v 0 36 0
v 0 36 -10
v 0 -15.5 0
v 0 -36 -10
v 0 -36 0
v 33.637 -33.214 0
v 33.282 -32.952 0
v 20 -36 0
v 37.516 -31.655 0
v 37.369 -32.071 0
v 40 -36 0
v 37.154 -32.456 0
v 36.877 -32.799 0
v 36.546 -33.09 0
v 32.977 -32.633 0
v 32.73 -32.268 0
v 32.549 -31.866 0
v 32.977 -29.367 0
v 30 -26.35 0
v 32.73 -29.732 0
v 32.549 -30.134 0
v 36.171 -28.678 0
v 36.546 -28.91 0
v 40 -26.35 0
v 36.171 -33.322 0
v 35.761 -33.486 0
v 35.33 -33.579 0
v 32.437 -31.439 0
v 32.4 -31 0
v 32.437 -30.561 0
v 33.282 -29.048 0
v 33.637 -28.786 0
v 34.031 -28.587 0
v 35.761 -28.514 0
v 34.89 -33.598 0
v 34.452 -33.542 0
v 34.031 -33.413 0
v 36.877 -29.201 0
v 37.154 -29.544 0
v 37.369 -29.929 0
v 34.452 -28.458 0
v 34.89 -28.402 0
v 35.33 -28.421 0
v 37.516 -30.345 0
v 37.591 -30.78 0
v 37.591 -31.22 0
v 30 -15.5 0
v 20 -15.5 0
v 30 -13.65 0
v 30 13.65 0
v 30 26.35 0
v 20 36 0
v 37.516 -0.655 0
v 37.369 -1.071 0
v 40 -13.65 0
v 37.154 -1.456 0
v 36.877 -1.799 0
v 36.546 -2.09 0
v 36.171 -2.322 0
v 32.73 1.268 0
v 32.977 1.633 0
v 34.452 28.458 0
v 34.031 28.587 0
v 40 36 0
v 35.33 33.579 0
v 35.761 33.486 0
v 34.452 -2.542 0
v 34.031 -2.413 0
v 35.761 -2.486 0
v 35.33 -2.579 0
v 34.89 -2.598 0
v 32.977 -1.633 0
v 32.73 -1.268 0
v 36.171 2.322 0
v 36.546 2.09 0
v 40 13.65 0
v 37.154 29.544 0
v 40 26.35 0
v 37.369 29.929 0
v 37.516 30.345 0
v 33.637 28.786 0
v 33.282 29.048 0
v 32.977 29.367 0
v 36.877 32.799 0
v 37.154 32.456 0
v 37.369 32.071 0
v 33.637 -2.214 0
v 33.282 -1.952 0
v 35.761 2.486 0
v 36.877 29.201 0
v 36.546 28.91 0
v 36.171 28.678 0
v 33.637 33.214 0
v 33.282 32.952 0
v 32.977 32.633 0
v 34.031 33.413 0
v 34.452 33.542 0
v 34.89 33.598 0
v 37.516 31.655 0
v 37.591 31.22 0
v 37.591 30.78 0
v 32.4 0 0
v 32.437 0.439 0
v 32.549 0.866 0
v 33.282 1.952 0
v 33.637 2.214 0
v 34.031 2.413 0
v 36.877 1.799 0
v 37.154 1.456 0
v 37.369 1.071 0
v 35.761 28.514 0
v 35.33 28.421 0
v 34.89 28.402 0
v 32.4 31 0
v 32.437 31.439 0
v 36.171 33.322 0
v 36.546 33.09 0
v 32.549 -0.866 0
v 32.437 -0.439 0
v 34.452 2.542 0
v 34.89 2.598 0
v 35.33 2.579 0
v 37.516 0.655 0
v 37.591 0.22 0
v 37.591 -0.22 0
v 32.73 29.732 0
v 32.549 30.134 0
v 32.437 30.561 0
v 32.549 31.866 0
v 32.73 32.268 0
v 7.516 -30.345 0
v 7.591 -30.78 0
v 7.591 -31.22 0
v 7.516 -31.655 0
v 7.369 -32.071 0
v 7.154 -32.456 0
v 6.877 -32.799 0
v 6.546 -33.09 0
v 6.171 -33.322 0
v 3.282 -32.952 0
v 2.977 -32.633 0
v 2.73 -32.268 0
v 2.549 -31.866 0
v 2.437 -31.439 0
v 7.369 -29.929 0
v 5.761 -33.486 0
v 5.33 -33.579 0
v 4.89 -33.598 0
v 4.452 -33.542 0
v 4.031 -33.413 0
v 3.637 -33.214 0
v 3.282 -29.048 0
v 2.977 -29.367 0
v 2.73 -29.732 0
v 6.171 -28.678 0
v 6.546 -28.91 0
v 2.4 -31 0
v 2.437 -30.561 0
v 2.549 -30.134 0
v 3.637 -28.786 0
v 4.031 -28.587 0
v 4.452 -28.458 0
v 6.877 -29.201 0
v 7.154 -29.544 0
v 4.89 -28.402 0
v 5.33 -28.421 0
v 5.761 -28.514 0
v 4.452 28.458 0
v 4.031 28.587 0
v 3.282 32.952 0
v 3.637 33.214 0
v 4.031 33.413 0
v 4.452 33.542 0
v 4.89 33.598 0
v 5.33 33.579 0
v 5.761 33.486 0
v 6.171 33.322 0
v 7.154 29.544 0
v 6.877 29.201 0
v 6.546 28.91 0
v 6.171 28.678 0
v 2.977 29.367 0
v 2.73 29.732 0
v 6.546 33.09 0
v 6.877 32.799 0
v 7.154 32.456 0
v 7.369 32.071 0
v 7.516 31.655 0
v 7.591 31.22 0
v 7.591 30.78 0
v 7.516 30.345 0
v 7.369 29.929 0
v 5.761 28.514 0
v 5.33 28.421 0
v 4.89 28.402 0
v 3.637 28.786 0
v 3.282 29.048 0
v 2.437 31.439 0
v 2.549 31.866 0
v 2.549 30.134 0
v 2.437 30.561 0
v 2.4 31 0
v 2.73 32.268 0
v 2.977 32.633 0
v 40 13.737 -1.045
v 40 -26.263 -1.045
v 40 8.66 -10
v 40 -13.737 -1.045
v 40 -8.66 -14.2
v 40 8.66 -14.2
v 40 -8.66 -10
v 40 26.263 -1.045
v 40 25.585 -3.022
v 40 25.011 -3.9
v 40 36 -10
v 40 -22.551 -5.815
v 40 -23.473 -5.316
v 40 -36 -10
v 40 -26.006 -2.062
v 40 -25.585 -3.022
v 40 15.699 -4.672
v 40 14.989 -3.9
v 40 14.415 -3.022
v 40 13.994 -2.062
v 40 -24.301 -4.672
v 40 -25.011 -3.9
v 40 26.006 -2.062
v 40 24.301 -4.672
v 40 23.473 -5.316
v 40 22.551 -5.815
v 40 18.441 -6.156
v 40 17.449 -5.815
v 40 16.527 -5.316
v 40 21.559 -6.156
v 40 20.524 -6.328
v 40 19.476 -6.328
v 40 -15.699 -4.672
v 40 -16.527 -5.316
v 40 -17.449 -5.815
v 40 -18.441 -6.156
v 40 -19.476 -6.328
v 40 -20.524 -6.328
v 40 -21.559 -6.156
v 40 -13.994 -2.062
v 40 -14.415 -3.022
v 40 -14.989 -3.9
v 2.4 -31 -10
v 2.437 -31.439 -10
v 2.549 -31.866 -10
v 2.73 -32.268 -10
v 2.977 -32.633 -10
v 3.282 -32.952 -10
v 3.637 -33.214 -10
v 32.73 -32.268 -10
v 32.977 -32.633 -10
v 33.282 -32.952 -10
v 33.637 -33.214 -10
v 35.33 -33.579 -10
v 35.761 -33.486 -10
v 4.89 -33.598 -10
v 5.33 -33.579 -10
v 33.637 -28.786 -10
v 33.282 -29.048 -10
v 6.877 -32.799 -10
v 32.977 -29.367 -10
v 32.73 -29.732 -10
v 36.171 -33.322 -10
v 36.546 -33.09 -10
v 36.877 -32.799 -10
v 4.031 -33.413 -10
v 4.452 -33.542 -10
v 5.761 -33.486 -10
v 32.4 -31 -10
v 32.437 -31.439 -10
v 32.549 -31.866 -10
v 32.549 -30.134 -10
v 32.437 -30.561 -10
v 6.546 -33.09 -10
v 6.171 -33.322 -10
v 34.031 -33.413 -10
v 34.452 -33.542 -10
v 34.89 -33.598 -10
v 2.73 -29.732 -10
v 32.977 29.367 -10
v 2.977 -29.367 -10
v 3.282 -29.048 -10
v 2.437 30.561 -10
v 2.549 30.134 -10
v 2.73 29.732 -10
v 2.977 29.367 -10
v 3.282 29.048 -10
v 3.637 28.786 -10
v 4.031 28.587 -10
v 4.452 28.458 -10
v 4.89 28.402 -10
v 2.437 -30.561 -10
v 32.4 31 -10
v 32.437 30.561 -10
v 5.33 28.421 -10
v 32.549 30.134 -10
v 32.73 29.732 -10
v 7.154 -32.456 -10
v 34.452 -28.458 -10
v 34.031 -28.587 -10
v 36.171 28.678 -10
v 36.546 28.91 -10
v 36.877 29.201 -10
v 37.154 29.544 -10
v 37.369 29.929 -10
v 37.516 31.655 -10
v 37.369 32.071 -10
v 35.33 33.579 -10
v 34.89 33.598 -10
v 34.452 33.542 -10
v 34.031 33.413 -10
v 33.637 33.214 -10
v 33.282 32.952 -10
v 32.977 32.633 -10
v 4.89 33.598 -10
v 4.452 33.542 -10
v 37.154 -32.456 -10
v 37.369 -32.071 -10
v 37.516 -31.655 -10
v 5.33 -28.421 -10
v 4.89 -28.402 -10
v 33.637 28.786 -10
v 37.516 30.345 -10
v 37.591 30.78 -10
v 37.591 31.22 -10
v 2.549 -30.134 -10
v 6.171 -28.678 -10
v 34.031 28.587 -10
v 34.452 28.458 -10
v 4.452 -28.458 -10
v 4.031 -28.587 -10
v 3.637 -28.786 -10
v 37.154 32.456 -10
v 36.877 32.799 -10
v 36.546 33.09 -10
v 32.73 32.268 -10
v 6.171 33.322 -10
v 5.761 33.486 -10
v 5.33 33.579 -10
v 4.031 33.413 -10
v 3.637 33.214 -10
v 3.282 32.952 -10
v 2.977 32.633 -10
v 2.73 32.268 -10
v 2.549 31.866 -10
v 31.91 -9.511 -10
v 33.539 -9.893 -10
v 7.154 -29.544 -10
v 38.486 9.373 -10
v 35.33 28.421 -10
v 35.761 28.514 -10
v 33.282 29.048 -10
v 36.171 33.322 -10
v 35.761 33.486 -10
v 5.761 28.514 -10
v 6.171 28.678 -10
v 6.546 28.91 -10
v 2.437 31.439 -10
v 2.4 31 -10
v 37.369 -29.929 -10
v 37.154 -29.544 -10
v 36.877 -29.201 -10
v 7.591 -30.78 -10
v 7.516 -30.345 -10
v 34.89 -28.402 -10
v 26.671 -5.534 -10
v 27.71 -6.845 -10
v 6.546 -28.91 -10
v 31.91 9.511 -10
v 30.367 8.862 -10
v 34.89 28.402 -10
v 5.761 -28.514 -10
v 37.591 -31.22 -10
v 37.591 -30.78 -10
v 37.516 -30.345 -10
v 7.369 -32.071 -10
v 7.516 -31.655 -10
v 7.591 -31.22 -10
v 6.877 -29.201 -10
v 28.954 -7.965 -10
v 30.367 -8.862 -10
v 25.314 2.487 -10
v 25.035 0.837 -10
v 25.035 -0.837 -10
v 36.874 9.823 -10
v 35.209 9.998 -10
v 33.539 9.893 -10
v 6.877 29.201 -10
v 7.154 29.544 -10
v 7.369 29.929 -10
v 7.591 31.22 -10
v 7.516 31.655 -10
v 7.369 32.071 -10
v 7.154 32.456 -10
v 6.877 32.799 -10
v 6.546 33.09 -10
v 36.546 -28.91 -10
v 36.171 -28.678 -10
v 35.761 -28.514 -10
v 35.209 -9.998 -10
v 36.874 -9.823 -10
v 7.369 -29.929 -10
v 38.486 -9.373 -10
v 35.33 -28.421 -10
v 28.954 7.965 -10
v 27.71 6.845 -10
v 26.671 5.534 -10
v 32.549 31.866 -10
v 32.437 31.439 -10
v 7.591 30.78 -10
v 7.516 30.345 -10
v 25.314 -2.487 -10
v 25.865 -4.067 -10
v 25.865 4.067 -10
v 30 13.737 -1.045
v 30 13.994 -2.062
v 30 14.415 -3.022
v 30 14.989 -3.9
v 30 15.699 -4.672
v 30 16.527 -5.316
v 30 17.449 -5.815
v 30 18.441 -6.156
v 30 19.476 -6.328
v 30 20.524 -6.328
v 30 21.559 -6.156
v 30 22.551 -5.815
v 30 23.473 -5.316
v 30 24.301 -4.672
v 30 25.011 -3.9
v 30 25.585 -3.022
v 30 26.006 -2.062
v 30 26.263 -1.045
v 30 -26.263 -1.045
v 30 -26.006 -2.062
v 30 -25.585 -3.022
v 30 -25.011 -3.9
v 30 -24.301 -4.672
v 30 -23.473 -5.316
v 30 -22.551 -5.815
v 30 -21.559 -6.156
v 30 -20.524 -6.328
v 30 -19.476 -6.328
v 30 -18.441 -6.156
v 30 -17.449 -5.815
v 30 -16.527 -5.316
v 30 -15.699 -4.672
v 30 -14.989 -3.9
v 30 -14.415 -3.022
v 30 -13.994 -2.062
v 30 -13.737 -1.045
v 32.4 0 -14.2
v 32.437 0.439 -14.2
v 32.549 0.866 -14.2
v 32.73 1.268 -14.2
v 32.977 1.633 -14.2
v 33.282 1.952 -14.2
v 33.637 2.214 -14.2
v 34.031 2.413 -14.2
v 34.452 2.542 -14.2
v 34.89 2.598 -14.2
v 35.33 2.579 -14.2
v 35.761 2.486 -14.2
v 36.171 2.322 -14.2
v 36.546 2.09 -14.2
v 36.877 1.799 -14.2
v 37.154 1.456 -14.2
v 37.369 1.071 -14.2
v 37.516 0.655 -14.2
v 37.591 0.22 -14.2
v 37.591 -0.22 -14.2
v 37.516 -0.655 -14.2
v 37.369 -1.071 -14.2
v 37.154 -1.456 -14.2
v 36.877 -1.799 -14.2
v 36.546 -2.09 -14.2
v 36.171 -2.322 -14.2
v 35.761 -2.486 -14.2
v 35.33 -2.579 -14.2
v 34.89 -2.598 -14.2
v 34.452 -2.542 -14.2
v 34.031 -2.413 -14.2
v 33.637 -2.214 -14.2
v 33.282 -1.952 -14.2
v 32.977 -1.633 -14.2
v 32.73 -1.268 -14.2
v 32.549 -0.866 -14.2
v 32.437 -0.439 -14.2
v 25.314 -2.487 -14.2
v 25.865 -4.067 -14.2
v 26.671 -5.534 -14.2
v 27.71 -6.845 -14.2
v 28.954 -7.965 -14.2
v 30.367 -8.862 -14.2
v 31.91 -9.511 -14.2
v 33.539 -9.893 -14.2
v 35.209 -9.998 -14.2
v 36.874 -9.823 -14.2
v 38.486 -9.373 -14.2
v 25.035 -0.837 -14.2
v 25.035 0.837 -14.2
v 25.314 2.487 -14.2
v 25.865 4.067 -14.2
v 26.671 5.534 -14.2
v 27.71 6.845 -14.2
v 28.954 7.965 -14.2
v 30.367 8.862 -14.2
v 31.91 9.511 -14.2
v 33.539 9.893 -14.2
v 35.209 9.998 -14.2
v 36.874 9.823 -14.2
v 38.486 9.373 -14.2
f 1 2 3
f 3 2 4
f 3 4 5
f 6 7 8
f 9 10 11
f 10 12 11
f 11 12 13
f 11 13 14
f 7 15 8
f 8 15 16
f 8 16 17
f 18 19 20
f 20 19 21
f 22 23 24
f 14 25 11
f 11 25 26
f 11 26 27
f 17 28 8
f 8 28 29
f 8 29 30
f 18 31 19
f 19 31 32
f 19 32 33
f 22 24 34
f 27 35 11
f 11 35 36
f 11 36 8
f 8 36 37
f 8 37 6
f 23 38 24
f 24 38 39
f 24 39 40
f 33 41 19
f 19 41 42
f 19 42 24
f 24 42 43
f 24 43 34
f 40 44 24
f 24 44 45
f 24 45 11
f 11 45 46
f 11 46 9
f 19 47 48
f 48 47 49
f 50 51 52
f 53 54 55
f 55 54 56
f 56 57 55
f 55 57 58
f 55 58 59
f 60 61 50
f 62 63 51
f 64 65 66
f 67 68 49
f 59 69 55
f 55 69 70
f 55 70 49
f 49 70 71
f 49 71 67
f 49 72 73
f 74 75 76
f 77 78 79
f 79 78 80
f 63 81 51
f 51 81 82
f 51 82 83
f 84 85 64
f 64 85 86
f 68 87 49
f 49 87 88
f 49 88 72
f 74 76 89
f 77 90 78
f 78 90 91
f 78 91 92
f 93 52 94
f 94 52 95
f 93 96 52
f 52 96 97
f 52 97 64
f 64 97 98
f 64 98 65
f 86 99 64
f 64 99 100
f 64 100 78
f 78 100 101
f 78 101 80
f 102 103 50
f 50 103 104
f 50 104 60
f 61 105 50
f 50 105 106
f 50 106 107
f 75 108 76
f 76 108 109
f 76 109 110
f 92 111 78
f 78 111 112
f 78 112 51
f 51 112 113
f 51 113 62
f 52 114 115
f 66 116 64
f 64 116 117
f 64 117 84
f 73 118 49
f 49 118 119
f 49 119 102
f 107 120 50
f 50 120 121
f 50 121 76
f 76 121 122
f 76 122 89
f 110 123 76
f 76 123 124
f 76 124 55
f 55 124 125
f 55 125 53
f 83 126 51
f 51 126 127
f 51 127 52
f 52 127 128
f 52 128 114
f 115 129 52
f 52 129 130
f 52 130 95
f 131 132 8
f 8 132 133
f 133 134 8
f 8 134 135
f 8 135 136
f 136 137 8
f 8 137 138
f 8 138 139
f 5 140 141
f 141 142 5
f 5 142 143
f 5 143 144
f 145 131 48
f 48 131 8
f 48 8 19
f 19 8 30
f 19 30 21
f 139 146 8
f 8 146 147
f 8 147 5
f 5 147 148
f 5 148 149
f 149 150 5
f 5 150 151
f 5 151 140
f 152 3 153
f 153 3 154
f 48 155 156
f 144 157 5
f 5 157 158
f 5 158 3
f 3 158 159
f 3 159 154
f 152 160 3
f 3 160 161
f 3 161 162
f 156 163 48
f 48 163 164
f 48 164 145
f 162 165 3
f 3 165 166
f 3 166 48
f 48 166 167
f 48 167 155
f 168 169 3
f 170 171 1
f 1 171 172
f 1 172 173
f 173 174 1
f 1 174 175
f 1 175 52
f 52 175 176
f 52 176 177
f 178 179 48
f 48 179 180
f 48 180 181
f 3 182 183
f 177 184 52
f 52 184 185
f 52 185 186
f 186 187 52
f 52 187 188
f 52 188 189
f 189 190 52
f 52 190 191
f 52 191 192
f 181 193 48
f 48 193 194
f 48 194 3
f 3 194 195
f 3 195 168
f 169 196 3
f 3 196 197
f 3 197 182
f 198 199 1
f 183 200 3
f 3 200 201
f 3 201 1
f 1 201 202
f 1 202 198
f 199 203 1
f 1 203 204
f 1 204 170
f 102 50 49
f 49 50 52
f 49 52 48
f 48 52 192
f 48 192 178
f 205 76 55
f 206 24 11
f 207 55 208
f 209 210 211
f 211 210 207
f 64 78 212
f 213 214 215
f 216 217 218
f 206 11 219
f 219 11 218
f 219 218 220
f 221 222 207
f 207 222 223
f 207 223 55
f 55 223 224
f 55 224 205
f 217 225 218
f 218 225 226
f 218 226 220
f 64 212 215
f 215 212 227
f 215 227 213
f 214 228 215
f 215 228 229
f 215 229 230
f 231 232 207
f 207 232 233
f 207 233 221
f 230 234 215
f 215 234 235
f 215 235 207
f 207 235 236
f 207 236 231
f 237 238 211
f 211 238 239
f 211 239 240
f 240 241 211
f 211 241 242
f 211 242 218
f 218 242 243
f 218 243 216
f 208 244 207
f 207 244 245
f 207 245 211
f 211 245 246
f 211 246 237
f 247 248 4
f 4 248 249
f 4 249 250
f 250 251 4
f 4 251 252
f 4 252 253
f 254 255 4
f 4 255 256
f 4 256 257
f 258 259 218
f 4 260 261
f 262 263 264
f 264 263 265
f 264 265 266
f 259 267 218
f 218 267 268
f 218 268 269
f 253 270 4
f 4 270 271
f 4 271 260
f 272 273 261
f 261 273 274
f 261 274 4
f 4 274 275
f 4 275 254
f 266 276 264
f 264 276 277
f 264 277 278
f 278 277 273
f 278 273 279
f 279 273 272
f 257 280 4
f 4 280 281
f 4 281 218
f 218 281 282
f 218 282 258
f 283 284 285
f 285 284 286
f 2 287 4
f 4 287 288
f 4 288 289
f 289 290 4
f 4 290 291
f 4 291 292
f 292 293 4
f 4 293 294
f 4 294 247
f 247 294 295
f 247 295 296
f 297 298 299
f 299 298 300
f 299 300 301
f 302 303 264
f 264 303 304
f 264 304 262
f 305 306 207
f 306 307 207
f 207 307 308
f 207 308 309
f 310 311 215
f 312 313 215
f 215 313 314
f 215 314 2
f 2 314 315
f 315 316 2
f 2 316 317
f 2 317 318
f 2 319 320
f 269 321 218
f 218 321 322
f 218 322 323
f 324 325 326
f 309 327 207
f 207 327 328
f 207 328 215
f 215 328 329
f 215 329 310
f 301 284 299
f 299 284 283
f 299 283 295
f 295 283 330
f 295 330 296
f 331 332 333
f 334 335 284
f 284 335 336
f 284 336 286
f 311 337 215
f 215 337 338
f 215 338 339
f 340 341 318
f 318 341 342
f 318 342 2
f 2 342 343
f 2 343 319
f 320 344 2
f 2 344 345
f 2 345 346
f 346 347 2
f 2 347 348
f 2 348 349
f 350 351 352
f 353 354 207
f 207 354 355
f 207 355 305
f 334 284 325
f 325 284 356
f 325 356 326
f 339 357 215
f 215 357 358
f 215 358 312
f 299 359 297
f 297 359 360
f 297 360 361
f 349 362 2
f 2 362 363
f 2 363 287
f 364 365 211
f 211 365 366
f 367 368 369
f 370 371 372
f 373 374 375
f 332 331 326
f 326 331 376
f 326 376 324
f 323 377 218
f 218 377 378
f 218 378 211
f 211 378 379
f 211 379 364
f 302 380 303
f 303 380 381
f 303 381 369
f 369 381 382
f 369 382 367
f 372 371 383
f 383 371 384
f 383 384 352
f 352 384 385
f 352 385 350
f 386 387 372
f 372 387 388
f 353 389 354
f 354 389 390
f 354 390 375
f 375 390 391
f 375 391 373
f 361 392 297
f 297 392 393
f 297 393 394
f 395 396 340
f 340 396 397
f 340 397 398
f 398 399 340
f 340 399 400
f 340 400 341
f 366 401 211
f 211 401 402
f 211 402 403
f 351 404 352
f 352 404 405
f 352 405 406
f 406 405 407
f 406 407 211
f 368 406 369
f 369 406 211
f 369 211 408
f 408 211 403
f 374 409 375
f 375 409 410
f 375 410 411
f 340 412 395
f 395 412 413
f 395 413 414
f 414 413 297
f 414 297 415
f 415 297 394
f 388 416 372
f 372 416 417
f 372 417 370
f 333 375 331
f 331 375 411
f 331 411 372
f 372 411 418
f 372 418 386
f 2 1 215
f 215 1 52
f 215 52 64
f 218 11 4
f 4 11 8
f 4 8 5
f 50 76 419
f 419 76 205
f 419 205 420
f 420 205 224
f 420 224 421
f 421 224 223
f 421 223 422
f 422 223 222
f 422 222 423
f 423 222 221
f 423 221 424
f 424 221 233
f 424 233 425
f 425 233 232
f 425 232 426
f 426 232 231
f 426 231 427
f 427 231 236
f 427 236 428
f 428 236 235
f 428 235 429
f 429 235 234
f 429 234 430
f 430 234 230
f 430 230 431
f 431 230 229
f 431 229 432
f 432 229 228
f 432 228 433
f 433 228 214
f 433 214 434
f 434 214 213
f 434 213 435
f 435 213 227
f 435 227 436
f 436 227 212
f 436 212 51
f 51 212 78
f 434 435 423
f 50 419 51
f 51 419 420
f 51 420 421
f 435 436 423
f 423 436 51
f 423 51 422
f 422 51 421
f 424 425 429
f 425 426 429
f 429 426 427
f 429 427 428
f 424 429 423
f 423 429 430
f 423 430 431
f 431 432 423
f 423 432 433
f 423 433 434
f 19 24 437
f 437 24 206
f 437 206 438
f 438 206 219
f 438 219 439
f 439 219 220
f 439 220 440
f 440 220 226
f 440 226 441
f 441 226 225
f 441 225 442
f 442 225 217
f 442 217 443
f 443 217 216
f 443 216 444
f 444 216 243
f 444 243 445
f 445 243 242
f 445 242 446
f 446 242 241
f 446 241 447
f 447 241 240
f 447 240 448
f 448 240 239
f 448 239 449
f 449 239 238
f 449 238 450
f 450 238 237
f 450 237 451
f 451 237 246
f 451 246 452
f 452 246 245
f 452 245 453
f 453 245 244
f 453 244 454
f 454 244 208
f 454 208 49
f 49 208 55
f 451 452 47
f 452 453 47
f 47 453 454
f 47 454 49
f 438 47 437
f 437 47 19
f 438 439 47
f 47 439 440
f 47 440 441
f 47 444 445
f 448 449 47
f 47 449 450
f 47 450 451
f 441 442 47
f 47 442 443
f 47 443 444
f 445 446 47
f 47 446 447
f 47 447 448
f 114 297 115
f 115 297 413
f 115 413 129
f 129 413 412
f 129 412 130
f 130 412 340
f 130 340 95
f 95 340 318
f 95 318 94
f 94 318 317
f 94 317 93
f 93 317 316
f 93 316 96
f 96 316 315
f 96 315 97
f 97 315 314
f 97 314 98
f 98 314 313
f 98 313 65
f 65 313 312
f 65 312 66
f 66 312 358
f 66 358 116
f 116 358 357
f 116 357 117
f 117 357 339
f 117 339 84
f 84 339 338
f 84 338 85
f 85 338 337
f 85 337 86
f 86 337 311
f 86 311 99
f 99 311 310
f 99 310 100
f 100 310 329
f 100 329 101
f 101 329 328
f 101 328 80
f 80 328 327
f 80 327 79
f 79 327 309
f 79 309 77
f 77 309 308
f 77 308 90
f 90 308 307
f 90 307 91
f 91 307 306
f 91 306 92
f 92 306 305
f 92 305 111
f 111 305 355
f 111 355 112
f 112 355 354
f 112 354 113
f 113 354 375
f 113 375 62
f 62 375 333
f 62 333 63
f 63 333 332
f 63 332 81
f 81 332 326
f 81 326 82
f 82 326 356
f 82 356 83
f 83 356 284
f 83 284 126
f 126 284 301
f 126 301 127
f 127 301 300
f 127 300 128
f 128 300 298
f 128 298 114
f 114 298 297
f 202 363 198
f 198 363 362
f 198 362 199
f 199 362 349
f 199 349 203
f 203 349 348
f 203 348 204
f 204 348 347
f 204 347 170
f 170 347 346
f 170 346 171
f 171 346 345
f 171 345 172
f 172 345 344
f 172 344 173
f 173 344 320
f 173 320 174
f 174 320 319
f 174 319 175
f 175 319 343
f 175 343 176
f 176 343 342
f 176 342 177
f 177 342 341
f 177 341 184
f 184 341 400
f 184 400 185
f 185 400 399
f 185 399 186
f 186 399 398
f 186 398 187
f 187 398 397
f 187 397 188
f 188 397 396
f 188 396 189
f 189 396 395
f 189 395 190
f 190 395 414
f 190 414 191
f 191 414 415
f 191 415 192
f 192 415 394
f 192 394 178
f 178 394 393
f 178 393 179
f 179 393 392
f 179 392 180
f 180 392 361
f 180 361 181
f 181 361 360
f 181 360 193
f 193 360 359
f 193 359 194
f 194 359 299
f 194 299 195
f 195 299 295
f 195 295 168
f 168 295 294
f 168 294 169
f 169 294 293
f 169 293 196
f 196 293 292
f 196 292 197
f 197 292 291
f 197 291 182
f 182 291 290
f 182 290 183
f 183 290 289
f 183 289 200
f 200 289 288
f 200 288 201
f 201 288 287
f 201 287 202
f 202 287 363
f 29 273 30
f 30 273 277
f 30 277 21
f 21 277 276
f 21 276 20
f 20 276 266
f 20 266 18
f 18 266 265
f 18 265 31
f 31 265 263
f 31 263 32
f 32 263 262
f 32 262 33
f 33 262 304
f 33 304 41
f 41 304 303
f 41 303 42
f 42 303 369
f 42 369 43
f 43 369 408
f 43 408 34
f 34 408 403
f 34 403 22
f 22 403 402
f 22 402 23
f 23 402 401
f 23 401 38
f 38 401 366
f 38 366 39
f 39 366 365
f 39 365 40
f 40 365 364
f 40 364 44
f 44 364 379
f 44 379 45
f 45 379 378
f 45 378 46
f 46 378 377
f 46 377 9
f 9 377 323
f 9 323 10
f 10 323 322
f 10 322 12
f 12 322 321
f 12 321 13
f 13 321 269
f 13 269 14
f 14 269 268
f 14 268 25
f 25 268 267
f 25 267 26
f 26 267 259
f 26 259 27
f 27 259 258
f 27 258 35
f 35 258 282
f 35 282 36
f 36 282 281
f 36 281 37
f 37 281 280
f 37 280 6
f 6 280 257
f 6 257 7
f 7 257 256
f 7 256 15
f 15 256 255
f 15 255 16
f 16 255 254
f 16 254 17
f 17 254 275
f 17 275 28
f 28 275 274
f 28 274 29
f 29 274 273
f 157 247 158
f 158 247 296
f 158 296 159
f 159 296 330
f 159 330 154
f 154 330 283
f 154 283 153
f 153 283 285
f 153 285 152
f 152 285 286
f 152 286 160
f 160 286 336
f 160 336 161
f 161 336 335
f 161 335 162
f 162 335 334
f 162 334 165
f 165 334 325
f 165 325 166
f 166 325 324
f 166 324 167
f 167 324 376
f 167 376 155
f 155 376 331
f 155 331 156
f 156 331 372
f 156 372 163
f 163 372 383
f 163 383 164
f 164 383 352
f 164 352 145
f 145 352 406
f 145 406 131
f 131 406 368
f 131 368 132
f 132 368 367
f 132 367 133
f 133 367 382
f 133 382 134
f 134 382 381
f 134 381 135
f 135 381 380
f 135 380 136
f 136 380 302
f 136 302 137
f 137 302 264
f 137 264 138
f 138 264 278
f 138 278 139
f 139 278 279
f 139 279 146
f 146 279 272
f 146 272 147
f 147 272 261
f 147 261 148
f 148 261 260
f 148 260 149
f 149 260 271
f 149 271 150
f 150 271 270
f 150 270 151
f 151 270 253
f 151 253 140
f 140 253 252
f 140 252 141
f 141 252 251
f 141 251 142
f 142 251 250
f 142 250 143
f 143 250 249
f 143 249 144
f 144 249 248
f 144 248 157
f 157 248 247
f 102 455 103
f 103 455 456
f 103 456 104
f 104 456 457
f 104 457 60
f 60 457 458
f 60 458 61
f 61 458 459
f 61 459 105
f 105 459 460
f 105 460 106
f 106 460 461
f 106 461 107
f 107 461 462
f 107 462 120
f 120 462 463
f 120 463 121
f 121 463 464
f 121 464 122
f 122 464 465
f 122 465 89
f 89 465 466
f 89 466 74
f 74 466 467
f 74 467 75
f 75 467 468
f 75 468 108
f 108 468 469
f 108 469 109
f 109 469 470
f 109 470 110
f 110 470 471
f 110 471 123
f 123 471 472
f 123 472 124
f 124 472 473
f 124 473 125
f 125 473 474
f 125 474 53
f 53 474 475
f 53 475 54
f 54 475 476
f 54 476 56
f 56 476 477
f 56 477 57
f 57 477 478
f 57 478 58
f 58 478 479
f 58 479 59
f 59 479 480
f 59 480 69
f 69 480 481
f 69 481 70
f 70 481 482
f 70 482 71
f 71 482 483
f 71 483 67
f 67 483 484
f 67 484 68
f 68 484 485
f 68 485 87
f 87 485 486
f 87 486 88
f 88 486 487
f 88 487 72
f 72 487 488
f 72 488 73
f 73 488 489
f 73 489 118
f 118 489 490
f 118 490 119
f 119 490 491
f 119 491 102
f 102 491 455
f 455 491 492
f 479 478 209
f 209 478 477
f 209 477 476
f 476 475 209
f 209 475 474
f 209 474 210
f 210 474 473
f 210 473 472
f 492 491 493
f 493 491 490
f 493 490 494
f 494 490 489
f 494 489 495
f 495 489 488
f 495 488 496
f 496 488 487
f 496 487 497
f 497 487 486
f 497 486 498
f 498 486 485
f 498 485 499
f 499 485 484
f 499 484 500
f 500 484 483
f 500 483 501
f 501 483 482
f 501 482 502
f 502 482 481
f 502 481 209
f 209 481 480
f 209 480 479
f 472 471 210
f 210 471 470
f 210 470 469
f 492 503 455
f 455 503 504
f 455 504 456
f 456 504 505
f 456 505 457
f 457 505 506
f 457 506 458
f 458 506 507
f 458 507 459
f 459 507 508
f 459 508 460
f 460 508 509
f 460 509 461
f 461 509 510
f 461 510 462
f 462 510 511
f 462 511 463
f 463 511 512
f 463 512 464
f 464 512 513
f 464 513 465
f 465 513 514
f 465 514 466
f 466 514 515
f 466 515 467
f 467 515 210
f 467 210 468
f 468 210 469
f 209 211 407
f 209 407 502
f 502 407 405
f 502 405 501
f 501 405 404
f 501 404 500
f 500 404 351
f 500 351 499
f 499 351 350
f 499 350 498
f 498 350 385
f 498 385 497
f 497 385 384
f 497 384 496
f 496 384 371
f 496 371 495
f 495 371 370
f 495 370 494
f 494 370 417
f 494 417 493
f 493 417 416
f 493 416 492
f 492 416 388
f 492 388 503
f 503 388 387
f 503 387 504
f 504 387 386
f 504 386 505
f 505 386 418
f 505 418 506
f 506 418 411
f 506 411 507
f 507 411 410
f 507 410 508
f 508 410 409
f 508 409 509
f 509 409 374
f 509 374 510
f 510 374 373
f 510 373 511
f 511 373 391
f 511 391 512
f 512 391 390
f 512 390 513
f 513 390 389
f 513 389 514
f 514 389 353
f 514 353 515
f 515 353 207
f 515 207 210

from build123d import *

# Parameters (mm, degrees)
SKETCH1_W           = 40
SKETCH1_H           = 10
BOSS_EXTRUDE1_DEPTH = 36
CUT_EXTRUDE1_DEPTH  = 10
SKETCH3_R           = 2.6
CUT_EXTRUDE2_DEPTH  = 55.735728734
BOSS_EXTRUDE2_START = 4.2
SKETCH5_R           = 2.6
BOSS_EXTRUDE2_DEPTH = 4.2


with BuildPart() as part:
    # Sketch1 → Boss-Extrude1 (new, symmetric)
    with BuildSketch(Plane(origin=(0, 0, 0), x_dir=(1, 0, 0), z_dir=(0, 1, 0))):
        with Locations((20, 5)):
            Rectangle(SKETCH1_W, SKETCH1_H)
    extrude(amount=BOSS_EXTRUDE1_DEPTH, both=True)

    # Sketch2 → Cut-Extrude1 (cut)
    with BuildSketch(Plane(origin=(40, 0, 0), x_dir=(0, 0, -1), z_dir=(1, 0, 0))):
        with BuildLine():
            Line((0, 26.35), (0, 13.65))
            ThreePointArc((0, 13.65), (6.35, 20), (0, 26.35))
        make_face()
        with BuildLine():
            Line((0, -13.65), (0, -26.35))
            ThreePointArc((0, -26.35), (6.35, -20), (0, -13.65))
        make_face()
    extrude(amount=-CUT_EXTRUDE1_DEPTH, mode=Mode.SUBTRACT)

    # Sketch3 → Cut-Extrude2 (cut, through all)
    with BuildSketch(Plane(origin=(0, 0, -10), x_dir=(-1, 0, 0), z_dir=(0, 0, -1))):
        with Locations((-35, 31)):
            Circle(SKETCH3_R)
        with Locations((-5, 31)):
            Circle(SKETCH3_R)
        with Locations((-35, -31)):
            Circle(SKETCH3_R)
        with Locations((-5, -31)):
            Circle(SKETCH3_R)
        with Locations((-35, 0)):
            Circle(SKETCH3_R)
    extrude(amount=-CUT_EXTRUDE2_DEPTH, mode=Mode.SUBTRACT)

    # Sketch5 → Boss-Extrude2 (add)
    with BuildSketch(Plane(origin=(0, 0, -10), x_dir=(-1, 0, 0), z_dir=(0, 0, -1)).offset(BOSS_EXTRUDE2_START)):
        with BuildLine():
            Line((-40, 8.660254038), (-40, -8.660254038))
            ThreePointArc((-40, -8.660254038), (-25, 0), (-40, 8.660254038))
        make_face()
        with Locations((-35, 0)):
            Circle(SKETCH5_R, mode=Mode.SUBTRACT)
    extrude(amount=-BOSS_EXTRUDE2_DEPTH)


solid = part.part
